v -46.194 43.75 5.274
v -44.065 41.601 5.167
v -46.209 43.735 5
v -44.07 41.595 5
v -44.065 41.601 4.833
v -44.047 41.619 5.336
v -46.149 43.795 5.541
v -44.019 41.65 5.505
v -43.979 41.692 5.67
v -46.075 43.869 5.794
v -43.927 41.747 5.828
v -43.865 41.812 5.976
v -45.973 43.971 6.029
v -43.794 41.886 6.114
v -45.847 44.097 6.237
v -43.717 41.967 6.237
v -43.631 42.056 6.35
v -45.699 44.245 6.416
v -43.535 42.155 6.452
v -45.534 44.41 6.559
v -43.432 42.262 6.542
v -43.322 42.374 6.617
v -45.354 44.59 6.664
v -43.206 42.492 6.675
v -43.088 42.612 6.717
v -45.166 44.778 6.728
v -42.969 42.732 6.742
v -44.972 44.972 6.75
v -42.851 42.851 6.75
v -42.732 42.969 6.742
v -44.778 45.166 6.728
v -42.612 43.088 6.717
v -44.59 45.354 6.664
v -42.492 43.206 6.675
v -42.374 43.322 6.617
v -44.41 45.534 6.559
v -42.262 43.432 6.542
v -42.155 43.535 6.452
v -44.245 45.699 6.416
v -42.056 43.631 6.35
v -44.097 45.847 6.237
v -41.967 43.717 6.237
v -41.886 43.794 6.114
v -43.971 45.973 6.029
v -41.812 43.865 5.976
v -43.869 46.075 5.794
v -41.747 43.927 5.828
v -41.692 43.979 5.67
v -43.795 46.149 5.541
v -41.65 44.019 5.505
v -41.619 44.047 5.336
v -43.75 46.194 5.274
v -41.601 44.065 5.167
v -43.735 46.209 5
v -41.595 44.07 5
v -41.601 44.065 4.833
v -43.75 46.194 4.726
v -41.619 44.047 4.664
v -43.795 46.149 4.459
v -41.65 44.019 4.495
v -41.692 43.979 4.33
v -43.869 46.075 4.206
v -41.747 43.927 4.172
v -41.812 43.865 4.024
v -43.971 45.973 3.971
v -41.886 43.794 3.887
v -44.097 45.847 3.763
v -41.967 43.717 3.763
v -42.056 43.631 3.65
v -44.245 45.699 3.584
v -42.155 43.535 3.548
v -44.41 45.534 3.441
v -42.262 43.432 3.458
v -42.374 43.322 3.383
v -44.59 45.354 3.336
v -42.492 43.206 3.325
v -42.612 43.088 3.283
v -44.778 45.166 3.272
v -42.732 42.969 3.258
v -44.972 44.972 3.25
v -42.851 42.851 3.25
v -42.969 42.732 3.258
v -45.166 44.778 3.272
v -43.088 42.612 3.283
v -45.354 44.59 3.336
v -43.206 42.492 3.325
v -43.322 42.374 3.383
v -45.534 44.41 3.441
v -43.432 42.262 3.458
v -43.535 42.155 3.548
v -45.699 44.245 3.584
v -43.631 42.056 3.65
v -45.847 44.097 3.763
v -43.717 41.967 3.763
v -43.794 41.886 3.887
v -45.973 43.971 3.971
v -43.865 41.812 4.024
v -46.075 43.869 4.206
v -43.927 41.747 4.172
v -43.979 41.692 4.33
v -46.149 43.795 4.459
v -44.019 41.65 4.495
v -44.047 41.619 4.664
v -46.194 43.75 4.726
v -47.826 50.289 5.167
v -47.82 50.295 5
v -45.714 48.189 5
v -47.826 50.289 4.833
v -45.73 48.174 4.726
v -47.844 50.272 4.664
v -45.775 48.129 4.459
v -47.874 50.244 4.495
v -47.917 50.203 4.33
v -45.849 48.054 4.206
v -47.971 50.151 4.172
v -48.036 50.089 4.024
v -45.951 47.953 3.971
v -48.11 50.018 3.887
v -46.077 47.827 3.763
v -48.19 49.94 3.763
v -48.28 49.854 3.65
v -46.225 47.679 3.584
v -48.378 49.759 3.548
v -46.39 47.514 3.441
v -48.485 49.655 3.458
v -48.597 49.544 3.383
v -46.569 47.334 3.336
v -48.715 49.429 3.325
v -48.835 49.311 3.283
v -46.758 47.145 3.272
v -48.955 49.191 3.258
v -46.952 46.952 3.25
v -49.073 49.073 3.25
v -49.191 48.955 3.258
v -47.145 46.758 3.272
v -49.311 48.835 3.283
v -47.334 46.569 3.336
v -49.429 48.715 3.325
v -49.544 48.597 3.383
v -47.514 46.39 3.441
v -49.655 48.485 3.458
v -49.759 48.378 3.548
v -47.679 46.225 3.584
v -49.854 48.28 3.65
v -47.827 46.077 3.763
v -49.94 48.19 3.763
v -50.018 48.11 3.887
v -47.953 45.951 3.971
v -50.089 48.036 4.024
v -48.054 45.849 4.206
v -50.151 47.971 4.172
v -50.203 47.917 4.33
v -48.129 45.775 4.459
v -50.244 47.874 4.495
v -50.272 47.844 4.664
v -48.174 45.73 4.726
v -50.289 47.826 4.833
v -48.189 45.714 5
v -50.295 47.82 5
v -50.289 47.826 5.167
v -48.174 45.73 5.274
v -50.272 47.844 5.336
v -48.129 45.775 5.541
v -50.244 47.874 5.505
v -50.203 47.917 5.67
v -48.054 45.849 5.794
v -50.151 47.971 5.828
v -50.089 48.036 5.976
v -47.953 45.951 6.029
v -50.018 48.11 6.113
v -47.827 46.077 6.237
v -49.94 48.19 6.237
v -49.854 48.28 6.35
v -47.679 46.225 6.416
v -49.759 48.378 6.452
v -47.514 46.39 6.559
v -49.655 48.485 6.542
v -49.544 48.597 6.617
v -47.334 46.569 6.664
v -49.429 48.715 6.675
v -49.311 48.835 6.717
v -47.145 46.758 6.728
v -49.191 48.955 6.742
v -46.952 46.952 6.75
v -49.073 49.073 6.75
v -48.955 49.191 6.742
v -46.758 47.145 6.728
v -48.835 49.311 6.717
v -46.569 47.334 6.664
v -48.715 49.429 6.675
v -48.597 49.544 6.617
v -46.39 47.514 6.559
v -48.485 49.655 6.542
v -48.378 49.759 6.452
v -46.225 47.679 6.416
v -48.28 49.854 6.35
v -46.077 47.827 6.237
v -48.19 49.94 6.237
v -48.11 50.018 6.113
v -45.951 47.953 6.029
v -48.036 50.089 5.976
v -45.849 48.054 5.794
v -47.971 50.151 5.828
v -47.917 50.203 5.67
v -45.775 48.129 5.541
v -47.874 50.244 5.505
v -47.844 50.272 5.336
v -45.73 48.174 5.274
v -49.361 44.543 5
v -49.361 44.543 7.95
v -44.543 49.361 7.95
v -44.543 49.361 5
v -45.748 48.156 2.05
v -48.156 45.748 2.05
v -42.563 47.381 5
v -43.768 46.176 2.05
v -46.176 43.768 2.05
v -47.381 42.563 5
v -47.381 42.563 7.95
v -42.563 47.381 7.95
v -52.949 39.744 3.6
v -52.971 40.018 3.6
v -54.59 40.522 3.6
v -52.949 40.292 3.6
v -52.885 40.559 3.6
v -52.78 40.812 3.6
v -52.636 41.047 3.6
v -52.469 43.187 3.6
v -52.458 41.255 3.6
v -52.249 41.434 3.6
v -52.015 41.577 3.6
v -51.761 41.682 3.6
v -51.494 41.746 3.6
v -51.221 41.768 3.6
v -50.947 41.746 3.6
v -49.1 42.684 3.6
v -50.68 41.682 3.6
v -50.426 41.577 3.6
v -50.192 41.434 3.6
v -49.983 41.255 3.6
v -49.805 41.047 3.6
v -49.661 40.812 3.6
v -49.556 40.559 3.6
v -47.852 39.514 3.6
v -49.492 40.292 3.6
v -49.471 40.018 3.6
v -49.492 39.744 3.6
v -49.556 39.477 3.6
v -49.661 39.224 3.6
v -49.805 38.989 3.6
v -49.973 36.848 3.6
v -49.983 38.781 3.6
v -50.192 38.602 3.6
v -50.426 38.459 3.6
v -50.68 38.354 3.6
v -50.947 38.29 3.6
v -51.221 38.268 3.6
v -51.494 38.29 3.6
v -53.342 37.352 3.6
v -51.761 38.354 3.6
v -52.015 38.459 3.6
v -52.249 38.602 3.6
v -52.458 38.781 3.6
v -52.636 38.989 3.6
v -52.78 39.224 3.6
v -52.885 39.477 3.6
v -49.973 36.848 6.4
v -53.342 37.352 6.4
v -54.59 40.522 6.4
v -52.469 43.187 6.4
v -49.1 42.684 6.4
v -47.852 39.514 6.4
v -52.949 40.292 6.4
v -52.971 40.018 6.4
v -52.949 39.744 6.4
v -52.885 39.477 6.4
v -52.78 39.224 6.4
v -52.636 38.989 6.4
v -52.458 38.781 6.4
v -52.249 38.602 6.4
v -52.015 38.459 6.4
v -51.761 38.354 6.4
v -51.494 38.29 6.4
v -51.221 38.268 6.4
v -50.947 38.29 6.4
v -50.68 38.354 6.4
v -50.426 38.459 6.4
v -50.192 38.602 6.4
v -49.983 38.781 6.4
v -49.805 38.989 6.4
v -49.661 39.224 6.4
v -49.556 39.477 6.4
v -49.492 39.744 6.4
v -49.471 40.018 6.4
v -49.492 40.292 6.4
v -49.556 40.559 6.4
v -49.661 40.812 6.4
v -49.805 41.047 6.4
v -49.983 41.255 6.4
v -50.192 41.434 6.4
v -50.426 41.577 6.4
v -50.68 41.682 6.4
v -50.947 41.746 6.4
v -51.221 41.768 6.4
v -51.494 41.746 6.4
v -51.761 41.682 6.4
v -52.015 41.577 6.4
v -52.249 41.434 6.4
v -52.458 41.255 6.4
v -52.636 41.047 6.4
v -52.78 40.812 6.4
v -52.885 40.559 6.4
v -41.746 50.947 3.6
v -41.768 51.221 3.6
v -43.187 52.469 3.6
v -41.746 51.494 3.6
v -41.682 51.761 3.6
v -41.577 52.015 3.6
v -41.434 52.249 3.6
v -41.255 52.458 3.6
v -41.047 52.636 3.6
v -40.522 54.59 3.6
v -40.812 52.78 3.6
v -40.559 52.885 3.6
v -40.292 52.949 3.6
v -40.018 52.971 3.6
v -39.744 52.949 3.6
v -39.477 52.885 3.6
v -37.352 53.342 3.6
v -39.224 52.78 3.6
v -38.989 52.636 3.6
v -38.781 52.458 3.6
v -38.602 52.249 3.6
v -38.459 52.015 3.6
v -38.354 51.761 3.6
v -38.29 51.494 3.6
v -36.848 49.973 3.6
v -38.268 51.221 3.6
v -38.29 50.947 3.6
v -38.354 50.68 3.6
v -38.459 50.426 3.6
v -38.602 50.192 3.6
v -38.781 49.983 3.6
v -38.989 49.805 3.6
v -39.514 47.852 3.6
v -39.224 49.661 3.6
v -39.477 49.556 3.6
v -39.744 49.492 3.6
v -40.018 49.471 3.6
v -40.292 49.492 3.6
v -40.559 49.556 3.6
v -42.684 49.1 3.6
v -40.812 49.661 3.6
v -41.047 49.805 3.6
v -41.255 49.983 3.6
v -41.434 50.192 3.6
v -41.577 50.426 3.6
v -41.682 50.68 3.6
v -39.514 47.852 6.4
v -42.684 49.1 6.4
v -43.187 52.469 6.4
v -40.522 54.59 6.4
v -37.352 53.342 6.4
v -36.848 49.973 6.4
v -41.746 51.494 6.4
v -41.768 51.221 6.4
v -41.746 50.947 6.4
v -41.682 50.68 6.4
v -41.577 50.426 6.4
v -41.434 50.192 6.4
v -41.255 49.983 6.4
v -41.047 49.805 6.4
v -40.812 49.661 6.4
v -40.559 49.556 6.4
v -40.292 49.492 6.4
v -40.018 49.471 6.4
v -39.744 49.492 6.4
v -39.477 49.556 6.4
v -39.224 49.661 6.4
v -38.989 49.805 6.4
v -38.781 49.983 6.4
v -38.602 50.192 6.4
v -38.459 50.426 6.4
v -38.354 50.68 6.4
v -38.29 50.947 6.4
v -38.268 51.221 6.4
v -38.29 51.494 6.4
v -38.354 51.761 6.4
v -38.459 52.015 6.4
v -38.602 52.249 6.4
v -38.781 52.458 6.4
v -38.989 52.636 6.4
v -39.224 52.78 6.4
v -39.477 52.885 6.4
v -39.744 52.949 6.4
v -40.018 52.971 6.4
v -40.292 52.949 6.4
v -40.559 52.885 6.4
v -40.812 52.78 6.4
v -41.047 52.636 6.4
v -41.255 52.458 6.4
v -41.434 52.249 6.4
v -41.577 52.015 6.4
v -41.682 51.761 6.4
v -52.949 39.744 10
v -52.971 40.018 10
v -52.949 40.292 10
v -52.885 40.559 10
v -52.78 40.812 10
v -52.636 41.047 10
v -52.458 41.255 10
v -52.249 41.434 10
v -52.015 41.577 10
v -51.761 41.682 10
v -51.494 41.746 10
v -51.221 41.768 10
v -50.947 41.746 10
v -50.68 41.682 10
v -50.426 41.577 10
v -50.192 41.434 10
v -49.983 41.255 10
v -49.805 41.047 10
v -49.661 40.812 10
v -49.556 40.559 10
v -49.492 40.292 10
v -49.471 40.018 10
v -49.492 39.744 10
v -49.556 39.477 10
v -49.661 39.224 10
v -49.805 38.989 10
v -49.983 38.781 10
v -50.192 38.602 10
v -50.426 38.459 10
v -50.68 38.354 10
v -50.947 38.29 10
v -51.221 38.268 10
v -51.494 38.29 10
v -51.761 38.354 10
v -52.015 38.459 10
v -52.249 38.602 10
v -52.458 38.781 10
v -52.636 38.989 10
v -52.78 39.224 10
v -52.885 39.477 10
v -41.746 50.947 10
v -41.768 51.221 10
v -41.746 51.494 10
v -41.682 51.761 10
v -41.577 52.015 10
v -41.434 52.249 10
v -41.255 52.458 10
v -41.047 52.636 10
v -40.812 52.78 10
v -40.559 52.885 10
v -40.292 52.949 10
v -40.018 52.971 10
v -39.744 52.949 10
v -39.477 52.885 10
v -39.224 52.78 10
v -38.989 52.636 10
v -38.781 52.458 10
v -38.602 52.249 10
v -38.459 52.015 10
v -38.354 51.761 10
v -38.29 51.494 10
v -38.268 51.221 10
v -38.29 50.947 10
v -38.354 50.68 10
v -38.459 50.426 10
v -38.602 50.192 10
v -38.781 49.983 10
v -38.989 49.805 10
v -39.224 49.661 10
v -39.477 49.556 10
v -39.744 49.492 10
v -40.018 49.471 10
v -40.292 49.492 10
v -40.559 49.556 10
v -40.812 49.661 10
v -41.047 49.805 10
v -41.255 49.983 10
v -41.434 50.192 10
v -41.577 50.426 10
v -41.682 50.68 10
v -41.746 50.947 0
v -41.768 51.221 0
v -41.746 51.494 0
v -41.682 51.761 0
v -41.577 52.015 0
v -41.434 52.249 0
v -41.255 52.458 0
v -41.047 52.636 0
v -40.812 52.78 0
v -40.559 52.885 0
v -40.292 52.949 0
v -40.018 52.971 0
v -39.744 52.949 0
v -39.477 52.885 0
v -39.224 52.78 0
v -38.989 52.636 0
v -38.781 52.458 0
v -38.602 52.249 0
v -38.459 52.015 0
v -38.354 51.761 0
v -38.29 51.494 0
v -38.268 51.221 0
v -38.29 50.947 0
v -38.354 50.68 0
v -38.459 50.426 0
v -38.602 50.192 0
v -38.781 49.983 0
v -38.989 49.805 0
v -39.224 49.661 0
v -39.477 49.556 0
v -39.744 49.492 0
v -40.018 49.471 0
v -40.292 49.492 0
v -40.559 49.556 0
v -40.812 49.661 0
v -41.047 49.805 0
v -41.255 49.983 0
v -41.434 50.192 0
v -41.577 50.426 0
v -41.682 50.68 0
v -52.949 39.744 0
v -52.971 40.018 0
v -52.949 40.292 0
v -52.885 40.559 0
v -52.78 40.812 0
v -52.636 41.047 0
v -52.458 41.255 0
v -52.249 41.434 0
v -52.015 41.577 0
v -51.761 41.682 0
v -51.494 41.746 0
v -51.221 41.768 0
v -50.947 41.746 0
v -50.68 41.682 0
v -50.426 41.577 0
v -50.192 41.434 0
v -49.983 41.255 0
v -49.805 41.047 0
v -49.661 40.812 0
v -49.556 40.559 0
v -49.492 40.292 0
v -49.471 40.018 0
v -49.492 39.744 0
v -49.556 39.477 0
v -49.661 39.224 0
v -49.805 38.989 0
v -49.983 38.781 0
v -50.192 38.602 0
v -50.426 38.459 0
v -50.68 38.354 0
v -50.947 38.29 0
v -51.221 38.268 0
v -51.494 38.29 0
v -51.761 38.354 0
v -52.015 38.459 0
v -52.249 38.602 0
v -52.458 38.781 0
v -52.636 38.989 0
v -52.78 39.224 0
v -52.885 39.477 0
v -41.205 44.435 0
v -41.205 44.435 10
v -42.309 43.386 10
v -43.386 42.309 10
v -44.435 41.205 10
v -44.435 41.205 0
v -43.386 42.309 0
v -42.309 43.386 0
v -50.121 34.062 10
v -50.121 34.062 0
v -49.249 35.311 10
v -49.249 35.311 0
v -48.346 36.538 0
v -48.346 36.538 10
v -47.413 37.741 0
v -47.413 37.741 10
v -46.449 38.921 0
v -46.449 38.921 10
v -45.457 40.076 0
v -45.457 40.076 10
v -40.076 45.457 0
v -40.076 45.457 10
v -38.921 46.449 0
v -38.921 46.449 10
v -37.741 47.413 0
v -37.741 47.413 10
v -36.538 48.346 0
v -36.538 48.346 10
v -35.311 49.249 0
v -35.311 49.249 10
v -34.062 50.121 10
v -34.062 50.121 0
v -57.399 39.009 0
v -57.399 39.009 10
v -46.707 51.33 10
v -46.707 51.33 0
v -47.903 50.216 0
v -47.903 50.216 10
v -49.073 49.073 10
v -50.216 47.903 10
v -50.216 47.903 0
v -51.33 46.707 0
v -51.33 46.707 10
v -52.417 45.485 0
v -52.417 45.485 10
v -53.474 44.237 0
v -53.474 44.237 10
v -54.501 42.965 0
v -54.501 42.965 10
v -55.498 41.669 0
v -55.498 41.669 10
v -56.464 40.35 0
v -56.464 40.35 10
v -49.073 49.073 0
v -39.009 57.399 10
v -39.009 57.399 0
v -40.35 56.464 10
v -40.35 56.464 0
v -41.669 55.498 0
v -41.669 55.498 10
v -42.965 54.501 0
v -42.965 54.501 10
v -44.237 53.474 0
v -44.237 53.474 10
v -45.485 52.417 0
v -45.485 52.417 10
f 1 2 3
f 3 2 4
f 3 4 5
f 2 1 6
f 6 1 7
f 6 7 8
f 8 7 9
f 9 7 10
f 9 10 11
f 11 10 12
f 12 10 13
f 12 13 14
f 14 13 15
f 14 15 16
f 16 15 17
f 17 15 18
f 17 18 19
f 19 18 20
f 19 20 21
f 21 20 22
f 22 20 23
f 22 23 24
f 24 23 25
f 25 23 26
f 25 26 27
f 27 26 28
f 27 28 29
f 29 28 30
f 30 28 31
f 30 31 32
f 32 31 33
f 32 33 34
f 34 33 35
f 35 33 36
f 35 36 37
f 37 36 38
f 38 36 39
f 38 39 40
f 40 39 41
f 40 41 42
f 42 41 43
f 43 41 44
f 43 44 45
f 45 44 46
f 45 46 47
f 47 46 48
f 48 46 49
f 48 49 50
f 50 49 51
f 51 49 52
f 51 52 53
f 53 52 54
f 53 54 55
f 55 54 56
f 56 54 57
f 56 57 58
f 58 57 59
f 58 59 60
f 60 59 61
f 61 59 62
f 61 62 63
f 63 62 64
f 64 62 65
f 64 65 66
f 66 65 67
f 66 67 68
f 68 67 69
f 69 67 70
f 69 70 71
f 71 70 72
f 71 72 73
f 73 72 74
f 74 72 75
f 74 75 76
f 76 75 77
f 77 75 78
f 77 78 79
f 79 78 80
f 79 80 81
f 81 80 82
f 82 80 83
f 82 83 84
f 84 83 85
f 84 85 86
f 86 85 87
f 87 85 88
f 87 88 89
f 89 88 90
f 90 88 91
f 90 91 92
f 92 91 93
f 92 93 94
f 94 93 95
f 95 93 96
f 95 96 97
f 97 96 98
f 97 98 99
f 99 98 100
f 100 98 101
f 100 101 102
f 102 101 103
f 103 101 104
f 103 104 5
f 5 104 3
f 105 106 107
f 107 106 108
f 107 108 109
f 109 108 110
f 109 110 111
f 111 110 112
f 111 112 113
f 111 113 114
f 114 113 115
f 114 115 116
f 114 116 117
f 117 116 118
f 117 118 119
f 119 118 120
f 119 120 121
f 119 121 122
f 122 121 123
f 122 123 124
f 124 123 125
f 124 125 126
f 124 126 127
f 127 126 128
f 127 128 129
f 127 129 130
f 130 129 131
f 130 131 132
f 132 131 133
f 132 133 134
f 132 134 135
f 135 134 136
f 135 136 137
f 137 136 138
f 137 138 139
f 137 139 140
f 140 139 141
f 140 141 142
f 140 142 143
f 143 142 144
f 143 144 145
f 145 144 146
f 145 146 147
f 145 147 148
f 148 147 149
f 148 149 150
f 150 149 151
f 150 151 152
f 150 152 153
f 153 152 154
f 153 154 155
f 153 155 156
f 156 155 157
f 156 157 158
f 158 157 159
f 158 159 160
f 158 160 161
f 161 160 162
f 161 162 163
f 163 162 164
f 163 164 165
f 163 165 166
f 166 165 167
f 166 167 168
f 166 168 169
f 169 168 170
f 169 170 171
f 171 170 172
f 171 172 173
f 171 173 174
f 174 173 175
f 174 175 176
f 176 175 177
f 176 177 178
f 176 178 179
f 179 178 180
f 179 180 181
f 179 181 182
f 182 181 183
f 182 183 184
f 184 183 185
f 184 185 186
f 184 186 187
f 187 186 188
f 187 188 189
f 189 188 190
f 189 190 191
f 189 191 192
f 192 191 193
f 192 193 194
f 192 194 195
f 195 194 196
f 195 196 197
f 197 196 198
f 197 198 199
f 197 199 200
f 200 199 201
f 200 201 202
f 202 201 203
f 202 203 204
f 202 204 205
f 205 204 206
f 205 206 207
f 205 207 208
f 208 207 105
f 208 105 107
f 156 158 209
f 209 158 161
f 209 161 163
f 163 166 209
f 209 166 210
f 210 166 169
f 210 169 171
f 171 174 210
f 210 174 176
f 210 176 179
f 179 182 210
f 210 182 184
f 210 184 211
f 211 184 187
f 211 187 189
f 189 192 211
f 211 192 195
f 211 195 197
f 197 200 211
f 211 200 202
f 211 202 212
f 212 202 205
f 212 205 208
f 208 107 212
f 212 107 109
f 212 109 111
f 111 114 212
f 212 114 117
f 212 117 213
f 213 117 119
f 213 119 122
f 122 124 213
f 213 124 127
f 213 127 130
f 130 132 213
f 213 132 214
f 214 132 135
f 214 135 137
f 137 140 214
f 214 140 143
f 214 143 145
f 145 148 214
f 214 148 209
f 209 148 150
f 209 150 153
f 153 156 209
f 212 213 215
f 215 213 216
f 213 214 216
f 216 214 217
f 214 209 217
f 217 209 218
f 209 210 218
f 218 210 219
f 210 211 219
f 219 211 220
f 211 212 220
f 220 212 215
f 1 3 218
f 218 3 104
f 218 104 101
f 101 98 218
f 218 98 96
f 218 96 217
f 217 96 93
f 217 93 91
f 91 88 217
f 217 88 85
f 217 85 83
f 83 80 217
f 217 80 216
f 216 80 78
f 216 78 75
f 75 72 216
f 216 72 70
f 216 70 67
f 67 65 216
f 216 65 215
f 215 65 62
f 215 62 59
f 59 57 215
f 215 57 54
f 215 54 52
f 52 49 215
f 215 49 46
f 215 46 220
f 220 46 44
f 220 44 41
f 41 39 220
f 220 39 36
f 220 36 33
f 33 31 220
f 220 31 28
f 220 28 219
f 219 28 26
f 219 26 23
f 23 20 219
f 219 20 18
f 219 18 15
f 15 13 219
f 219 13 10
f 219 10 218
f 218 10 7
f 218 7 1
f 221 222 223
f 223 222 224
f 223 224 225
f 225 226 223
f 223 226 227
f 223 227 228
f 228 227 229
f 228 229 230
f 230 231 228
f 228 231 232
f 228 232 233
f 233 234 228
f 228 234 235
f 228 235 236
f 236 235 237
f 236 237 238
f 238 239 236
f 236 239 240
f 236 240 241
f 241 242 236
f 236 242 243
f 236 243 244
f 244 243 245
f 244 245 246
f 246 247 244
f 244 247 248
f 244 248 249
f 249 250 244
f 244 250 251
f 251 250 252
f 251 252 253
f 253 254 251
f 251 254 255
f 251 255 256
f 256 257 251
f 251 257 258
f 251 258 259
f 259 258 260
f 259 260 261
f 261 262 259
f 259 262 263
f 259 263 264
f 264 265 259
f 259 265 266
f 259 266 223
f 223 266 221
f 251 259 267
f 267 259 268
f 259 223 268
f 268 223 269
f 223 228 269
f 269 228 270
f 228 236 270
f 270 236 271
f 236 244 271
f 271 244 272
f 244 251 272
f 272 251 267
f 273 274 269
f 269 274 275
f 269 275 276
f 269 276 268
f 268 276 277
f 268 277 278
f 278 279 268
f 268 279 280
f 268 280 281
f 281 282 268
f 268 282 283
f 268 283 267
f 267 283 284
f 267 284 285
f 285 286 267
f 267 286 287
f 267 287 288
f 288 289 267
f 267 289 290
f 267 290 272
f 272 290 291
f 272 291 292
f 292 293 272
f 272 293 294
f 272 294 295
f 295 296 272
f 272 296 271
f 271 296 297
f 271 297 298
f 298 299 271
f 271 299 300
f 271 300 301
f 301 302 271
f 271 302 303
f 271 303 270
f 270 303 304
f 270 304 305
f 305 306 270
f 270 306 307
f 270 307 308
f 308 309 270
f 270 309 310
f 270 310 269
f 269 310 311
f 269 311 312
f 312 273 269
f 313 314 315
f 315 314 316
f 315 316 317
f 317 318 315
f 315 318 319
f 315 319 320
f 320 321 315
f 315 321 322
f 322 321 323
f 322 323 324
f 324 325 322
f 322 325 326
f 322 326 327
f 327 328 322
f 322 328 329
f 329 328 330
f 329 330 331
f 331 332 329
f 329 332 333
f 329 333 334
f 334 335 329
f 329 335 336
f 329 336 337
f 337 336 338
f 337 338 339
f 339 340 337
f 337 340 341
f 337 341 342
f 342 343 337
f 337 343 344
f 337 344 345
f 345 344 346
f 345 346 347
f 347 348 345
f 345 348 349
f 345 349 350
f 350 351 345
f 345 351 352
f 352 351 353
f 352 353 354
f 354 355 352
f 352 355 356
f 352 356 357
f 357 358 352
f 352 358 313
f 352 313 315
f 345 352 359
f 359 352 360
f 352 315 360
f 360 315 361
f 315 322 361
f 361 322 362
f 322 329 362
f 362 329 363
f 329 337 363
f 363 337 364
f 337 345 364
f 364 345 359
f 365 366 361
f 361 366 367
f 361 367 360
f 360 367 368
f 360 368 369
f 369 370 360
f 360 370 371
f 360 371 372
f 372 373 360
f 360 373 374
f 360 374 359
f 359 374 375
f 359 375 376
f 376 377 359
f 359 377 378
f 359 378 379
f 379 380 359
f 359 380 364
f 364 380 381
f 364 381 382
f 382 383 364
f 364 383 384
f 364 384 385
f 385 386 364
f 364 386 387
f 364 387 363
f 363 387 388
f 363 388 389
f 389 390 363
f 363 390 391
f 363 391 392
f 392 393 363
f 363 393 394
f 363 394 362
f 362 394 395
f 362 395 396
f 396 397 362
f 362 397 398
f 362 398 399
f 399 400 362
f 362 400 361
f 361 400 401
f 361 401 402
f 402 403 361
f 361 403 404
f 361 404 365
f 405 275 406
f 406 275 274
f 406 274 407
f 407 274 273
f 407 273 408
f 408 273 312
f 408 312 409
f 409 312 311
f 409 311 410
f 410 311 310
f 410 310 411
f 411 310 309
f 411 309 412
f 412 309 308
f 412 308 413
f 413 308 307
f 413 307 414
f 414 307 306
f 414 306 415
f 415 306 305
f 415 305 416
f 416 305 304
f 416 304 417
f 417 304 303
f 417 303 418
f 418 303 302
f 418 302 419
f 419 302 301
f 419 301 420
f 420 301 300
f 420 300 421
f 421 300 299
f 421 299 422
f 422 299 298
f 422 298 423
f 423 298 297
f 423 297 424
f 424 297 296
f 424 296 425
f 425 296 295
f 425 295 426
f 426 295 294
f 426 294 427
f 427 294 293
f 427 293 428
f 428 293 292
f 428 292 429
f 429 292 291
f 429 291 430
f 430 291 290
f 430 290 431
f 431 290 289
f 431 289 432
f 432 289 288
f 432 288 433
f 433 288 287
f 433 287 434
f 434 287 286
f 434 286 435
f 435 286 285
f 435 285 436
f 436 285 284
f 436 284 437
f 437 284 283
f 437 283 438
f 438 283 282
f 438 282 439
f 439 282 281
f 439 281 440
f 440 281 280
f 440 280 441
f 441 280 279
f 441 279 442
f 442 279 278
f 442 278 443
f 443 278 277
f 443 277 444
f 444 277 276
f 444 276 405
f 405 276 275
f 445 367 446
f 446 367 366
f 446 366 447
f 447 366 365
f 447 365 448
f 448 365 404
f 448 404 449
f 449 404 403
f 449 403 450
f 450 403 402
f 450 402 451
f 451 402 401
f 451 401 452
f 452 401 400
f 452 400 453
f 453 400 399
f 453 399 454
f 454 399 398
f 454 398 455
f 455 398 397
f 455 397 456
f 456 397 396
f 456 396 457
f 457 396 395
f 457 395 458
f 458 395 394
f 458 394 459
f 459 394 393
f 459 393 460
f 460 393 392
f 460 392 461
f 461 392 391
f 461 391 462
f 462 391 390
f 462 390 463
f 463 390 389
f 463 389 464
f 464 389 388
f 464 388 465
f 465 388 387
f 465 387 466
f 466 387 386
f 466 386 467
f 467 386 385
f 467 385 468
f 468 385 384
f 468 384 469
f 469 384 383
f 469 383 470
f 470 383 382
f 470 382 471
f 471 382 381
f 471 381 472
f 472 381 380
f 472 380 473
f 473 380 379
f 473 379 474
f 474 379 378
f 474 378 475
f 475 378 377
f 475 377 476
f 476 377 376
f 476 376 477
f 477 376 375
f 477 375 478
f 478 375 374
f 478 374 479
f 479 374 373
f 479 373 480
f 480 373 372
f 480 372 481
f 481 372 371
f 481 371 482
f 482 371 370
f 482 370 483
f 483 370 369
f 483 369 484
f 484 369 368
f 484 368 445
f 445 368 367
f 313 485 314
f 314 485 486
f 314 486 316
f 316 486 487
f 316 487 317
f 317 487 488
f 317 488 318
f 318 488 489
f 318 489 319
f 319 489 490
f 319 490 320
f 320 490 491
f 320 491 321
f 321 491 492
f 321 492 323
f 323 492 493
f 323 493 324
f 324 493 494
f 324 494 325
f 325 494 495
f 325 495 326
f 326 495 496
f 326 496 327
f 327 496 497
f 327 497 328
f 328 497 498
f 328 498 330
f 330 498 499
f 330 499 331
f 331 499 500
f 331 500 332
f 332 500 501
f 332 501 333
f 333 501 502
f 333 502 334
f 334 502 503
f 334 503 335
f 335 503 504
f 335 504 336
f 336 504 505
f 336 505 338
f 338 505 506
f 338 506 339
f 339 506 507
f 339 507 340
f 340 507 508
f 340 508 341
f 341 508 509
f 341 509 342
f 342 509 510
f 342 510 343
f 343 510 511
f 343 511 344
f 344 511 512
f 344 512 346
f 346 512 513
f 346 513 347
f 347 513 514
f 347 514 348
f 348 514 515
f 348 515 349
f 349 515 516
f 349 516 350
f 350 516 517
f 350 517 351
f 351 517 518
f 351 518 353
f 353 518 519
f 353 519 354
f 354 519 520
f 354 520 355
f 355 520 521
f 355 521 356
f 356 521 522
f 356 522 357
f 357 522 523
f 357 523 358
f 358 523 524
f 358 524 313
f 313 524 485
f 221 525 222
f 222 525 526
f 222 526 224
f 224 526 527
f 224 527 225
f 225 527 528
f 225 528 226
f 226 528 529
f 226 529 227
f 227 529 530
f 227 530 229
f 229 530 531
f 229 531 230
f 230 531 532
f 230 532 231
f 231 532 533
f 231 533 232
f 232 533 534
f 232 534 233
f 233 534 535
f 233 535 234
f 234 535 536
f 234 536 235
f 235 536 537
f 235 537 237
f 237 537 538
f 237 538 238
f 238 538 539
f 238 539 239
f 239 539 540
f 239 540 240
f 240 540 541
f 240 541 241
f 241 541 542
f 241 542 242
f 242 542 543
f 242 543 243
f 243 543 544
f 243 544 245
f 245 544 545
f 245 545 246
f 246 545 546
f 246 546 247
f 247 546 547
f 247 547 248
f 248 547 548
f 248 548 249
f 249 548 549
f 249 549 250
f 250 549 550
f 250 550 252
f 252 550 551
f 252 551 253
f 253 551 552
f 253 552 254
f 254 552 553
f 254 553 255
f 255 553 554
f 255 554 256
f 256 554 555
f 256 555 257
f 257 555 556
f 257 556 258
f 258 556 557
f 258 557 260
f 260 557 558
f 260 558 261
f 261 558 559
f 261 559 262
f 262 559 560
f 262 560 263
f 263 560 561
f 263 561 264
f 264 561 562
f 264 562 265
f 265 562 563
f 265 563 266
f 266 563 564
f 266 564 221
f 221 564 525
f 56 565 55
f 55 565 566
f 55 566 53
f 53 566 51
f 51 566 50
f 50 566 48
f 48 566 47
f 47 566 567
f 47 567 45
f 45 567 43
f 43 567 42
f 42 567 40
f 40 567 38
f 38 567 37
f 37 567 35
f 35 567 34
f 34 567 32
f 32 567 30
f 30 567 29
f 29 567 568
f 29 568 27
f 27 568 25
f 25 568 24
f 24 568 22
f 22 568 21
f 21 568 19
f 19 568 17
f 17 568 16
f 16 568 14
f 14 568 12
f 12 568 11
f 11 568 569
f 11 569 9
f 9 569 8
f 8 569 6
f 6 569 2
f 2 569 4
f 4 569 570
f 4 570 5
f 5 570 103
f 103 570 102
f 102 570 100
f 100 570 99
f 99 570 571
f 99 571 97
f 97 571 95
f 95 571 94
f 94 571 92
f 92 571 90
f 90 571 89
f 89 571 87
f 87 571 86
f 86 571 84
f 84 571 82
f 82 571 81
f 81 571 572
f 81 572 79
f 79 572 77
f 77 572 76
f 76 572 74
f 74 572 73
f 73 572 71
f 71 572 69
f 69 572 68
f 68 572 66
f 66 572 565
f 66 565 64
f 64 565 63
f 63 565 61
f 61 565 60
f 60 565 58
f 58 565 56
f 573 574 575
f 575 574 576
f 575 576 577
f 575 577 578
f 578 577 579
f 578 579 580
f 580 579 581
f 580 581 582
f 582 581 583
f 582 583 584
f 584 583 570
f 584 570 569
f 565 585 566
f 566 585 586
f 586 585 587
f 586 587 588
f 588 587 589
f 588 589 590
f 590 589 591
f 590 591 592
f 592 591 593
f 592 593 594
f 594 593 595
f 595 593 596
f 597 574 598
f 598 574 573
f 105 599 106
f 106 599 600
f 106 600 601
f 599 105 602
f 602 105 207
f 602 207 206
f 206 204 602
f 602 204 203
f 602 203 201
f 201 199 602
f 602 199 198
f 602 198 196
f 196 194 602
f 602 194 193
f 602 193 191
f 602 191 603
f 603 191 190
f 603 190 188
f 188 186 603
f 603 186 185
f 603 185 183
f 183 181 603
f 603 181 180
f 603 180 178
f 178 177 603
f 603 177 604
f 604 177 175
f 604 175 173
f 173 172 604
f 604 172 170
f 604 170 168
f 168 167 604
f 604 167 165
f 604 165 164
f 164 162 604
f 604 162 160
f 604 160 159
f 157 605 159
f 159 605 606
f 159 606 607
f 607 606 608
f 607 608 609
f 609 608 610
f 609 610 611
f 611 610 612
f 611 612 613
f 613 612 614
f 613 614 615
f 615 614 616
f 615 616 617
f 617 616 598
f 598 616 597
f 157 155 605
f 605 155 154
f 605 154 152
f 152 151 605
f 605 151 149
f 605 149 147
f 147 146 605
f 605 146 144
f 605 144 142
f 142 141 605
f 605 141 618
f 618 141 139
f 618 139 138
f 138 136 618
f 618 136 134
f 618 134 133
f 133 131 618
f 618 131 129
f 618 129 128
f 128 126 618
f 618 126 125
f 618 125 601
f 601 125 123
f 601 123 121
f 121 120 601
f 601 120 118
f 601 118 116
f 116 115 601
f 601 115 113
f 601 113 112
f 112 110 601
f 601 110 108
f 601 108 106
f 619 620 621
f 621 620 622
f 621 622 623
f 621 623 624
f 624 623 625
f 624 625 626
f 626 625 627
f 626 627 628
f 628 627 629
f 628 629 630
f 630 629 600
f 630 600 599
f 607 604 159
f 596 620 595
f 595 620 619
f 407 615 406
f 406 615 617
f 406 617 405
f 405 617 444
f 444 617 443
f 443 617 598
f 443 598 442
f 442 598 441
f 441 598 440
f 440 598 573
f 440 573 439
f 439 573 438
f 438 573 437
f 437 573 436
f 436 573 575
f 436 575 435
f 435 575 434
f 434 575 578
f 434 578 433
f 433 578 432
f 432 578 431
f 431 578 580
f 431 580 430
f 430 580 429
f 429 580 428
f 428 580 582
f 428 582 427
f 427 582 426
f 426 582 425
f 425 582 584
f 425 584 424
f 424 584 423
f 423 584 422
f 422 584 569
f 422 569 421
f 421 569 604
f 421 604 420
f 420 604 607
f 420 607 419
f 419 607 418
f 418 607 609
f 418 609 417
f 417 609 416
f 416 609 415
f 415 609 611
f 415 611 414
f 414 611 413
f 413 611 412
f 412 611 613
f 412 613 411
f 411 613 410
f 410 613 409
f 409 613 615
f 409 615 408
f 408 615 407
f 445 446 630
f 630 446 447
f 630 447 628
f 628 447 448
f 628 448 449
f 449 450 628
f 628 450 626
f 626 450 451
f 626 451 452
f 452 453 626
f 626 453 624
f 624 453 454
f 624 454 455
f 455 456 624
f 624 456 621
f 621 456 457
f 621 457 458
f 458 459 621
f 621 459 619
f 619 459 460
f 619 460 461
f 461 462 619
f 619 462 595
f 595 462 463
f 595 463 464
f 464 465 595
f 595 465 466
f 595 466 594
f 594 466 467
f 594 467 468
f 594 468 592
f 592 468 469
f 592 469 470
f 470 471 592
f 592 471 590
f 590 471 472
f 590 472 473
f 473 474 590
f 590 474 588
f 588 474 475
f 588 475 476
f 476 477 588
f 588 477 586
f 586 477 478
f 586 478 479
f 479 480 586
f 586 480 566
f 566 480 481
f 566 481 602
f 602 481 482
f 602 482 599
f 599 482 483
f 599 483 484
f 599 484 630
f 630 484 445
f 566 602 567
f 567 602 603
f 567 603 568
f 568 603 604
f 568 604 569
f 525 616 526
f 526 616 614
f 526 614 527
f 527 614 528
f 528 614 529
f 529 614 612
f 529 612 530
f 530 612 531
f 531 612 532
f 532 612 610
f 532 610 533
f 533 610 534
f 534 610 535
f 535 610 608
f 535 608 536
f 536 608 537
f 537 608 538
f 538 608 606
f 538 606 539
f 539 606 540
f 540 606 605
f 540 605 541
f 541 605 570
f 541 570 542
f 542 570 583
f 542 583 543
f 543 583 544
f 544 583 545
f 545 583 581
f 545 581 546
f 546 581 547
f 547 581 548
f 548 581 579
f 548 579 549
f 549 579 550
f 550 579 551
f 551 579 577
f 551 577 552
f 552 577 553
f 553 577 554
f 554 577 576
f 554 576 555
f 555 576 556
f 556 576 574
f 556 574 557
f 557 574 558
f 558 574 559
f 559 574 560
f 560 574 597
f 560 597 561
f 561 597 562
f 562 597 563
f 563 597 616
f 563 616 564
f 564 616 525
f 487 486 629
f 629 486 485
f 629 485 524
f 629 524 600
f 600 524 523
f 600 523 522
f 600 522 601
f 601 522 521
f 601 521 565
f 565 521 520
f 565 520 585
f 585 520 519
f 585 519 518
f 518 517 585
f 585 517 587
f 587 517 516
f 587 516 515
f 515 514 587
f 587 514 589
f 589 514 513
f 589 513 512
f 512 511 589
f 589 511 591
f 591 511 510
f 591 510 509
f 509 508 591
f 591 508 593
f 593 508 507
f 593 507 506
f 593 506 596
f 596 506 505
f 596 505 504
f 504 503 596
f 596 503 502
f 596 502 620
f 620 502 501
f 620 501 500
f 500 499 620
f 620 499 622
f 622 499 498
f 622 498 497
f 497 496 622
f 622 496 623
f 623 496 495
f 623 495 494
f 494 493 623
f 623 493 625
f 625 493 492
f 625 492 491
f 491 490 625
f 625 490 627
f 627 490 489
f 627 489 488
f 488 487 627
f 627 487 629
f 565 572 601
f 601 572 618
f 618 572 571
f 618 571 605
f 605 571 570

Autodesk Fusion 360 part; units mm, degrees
sketch "Skizze1" plane through (0, 0, 0) normal (0, 0, 1) x (1, 0, 0)
  circle A0 centre (0, 0) radius 65 construction
  line L0 (-66.7503, 52.1511) -> (89.6233, -70.0214) construction
  line L1 (-51.5684, 66.0045) -> (50.4838, -64.6164) construction
  line L2 (-86.5753, 0) -> (92.1282, 0) construction
  line L3 (0, 84.3443) -> (0, -71.5181) construction
  circle A1 centre (0, 0) radius 60.6
  circle A2 centre (0, 0) radius 69.4
  line L4 (-42.8236, 63.013) -> (41.6736, -61.3209)
  line L5 (-61.3482, 41.6922) -> (84.2724, -57.2715)
  circle A3 centre (-51.2207, 40.018) radius 1.75
  circle A4 centre (-40.018, 51.2207) radius 1.75
  line L6 (-91.6282, 91.6282) -> (70.0913, -70.0913) construction
  line L7 (-102.9597, -11.0359) -> (6.8047, 98.7286) construction
  point P0 (-51.2207, 40.018)
  point P1 (-40.018, 51.2207)
  point P2 (-51.2207, 40.018)
  point P3 (-40.018, 51.2207)
  point P4 (-45.9619, 45.9619)
  dimension "d1" = 130
  dimension "d2" = 38
  dimension "d3" = 38
  dimension "d4" = 121.2
  dimension "d5" = 138.8
  dimension "d6" = 34.2
  dimension "d7" = 34.2
  dimension "d10" = 3.5
  dimension "d11" = 3.5
  dimension "d12" = 45
ref_plane "Arbeitsebene1" through (0, 0, 0) normal (0.7071, 0.7071, 0) x (-0.7071, 0.7071, 0)
sketch "Skizze3" plane through (0, 0, 0) normal (0.7071, 0.7071, 0) x (-0.7071, 0.7071, 0)
  line L0 (65, 53.8628) -> (65, -35) construction
  point P0 (65, 0)
ref_plane "Arbeitsebene2" through (-45.9619, 45.9619, 0) normal (0.7071, -0.7071, 0) x (0.7071, 0.7071, 0)
sketch "Skizze4" plane through (-45.9619, 45.9619, 0) normal (0.7071, -0.7071, 0) x (0.7071, 0.7071, 0)
  line L0 (0, 44.1227) -> (0, -35) construction
  line L1 (53.181, 0) -> (-38.9604, 0) construction
  line L2 (51.233, 5) -> (-51.6226, 5) construction
  line L3 (1.7032, 2.05) -> (3.4064, 5)
  line L4 (3.4064, 5) -> (1.7032, 7.95)
  line L5 (1.7032, 7.95) -> (-1.7032, 7.95)
  line L6 (-1.7032, 7.95) -> (-3.4064, 5)
  line L7 (-3.4064, 5) -> (-1.7032, 2.05)
  line L8 (-1.7032, 2.05) -> (1.7032, 2.05)
  line L9 (3.4064, 7.95) -> (-3.4064, 7.95)
  line L10 (-3.4064, 7.95) -> (-3.4064, 5)
  line L11 (-3.4064, 5) -> (3.4064, 5)
  line L12 (3.4064, 5) -> (3.4064, 7.95)
  circle A0 centre (0, 5) radius 1.75
  point P0 (0, 5)
  dimension "d13" = 5
  dimension "d15" = 5.9
  dimension "d28" = 3.5
extrude "Extrusion1" add sketch "Skizze1" along normal blind 10 contours A1 A2 L4 L5 picked at (-47.8032, 46.0094)
extrude "Extrusion2" cut sketch "Skizze4" along normal mid plane 2.8
ref_plane "Arbeitsebene3" through (0, 0, 5) normal (0, 0, 1) x (1, 0, 0)
sketch "Skizze5" plane through (0, 0, 5) normal (0, 0, 1) x (1, 0, 0)
  line L0 (-43.0431, 55.0926) -> (33.9956, -43.5124) construction
  line L1 (-63.2817, 49.4411) -> (43.7853, -34.2088) construction
  line L2 (-70, 0) -> (67.6704, 0) construction
  line L3 (0, 69.2816) -> (0, -27.82) construction
  circle A0 centre (0, 0) radius 65 construction
  line L4 (-36.8485, 49.9727) -> (-37.3524, 53.3415)
  line L5 (-37.3524, 53.3415) -> (-40.5219, 54.5896)
  line L6 (-40.5219, 54.5896) -> (-43.1875, 52.4687)
  line L7 (-43.1875, 52.4687) -> (-42.6836, 49.0999)
  line L8 (-42.6836, 49.0999) -> (-39.5141, 47.8518)
  line L9 (-39.5141, 47.8518) -> (-36.8485, 49.9727)
  line L10 (-47.8518, 39.5141) -> (-49.0999, 42.6836)
  line L11 (-49.0999, 42.6836) -> (-52.4687, 43.1875)
  line L12 (-52.4687, 43.1875) -> (-54.5896, 40.5219)
  line L13 (-54.5896, 40.5219) -> (-53.3415, 37.3524)
  line L14 (-53.3415, 37.3524) -> (-49.9727, 36.8485)
  line L15 (-49.9727, 36.8485) -> (-47.8518, 39.5141)
  point P0 (-40.018, 51.2207)
  point P1 (-51.2207, 40.018)
  point P2 (-40.018, 51.2207)
  point P3 (-51.2207, 40.018)
  dimension "d21" = 38
  dimension "d22" = 38
  dimension "d23" = 130
  dimension "d24" = 5.9
  dimension "d25" = 5.9
extrude "Extrusion3" cut sketch "Skizze5" along normal mid plane 2.8
extrude "Extrusion4" cut sketch "Skizze4" along normal mid plane 30 contours L11 A0 | L11 A0
